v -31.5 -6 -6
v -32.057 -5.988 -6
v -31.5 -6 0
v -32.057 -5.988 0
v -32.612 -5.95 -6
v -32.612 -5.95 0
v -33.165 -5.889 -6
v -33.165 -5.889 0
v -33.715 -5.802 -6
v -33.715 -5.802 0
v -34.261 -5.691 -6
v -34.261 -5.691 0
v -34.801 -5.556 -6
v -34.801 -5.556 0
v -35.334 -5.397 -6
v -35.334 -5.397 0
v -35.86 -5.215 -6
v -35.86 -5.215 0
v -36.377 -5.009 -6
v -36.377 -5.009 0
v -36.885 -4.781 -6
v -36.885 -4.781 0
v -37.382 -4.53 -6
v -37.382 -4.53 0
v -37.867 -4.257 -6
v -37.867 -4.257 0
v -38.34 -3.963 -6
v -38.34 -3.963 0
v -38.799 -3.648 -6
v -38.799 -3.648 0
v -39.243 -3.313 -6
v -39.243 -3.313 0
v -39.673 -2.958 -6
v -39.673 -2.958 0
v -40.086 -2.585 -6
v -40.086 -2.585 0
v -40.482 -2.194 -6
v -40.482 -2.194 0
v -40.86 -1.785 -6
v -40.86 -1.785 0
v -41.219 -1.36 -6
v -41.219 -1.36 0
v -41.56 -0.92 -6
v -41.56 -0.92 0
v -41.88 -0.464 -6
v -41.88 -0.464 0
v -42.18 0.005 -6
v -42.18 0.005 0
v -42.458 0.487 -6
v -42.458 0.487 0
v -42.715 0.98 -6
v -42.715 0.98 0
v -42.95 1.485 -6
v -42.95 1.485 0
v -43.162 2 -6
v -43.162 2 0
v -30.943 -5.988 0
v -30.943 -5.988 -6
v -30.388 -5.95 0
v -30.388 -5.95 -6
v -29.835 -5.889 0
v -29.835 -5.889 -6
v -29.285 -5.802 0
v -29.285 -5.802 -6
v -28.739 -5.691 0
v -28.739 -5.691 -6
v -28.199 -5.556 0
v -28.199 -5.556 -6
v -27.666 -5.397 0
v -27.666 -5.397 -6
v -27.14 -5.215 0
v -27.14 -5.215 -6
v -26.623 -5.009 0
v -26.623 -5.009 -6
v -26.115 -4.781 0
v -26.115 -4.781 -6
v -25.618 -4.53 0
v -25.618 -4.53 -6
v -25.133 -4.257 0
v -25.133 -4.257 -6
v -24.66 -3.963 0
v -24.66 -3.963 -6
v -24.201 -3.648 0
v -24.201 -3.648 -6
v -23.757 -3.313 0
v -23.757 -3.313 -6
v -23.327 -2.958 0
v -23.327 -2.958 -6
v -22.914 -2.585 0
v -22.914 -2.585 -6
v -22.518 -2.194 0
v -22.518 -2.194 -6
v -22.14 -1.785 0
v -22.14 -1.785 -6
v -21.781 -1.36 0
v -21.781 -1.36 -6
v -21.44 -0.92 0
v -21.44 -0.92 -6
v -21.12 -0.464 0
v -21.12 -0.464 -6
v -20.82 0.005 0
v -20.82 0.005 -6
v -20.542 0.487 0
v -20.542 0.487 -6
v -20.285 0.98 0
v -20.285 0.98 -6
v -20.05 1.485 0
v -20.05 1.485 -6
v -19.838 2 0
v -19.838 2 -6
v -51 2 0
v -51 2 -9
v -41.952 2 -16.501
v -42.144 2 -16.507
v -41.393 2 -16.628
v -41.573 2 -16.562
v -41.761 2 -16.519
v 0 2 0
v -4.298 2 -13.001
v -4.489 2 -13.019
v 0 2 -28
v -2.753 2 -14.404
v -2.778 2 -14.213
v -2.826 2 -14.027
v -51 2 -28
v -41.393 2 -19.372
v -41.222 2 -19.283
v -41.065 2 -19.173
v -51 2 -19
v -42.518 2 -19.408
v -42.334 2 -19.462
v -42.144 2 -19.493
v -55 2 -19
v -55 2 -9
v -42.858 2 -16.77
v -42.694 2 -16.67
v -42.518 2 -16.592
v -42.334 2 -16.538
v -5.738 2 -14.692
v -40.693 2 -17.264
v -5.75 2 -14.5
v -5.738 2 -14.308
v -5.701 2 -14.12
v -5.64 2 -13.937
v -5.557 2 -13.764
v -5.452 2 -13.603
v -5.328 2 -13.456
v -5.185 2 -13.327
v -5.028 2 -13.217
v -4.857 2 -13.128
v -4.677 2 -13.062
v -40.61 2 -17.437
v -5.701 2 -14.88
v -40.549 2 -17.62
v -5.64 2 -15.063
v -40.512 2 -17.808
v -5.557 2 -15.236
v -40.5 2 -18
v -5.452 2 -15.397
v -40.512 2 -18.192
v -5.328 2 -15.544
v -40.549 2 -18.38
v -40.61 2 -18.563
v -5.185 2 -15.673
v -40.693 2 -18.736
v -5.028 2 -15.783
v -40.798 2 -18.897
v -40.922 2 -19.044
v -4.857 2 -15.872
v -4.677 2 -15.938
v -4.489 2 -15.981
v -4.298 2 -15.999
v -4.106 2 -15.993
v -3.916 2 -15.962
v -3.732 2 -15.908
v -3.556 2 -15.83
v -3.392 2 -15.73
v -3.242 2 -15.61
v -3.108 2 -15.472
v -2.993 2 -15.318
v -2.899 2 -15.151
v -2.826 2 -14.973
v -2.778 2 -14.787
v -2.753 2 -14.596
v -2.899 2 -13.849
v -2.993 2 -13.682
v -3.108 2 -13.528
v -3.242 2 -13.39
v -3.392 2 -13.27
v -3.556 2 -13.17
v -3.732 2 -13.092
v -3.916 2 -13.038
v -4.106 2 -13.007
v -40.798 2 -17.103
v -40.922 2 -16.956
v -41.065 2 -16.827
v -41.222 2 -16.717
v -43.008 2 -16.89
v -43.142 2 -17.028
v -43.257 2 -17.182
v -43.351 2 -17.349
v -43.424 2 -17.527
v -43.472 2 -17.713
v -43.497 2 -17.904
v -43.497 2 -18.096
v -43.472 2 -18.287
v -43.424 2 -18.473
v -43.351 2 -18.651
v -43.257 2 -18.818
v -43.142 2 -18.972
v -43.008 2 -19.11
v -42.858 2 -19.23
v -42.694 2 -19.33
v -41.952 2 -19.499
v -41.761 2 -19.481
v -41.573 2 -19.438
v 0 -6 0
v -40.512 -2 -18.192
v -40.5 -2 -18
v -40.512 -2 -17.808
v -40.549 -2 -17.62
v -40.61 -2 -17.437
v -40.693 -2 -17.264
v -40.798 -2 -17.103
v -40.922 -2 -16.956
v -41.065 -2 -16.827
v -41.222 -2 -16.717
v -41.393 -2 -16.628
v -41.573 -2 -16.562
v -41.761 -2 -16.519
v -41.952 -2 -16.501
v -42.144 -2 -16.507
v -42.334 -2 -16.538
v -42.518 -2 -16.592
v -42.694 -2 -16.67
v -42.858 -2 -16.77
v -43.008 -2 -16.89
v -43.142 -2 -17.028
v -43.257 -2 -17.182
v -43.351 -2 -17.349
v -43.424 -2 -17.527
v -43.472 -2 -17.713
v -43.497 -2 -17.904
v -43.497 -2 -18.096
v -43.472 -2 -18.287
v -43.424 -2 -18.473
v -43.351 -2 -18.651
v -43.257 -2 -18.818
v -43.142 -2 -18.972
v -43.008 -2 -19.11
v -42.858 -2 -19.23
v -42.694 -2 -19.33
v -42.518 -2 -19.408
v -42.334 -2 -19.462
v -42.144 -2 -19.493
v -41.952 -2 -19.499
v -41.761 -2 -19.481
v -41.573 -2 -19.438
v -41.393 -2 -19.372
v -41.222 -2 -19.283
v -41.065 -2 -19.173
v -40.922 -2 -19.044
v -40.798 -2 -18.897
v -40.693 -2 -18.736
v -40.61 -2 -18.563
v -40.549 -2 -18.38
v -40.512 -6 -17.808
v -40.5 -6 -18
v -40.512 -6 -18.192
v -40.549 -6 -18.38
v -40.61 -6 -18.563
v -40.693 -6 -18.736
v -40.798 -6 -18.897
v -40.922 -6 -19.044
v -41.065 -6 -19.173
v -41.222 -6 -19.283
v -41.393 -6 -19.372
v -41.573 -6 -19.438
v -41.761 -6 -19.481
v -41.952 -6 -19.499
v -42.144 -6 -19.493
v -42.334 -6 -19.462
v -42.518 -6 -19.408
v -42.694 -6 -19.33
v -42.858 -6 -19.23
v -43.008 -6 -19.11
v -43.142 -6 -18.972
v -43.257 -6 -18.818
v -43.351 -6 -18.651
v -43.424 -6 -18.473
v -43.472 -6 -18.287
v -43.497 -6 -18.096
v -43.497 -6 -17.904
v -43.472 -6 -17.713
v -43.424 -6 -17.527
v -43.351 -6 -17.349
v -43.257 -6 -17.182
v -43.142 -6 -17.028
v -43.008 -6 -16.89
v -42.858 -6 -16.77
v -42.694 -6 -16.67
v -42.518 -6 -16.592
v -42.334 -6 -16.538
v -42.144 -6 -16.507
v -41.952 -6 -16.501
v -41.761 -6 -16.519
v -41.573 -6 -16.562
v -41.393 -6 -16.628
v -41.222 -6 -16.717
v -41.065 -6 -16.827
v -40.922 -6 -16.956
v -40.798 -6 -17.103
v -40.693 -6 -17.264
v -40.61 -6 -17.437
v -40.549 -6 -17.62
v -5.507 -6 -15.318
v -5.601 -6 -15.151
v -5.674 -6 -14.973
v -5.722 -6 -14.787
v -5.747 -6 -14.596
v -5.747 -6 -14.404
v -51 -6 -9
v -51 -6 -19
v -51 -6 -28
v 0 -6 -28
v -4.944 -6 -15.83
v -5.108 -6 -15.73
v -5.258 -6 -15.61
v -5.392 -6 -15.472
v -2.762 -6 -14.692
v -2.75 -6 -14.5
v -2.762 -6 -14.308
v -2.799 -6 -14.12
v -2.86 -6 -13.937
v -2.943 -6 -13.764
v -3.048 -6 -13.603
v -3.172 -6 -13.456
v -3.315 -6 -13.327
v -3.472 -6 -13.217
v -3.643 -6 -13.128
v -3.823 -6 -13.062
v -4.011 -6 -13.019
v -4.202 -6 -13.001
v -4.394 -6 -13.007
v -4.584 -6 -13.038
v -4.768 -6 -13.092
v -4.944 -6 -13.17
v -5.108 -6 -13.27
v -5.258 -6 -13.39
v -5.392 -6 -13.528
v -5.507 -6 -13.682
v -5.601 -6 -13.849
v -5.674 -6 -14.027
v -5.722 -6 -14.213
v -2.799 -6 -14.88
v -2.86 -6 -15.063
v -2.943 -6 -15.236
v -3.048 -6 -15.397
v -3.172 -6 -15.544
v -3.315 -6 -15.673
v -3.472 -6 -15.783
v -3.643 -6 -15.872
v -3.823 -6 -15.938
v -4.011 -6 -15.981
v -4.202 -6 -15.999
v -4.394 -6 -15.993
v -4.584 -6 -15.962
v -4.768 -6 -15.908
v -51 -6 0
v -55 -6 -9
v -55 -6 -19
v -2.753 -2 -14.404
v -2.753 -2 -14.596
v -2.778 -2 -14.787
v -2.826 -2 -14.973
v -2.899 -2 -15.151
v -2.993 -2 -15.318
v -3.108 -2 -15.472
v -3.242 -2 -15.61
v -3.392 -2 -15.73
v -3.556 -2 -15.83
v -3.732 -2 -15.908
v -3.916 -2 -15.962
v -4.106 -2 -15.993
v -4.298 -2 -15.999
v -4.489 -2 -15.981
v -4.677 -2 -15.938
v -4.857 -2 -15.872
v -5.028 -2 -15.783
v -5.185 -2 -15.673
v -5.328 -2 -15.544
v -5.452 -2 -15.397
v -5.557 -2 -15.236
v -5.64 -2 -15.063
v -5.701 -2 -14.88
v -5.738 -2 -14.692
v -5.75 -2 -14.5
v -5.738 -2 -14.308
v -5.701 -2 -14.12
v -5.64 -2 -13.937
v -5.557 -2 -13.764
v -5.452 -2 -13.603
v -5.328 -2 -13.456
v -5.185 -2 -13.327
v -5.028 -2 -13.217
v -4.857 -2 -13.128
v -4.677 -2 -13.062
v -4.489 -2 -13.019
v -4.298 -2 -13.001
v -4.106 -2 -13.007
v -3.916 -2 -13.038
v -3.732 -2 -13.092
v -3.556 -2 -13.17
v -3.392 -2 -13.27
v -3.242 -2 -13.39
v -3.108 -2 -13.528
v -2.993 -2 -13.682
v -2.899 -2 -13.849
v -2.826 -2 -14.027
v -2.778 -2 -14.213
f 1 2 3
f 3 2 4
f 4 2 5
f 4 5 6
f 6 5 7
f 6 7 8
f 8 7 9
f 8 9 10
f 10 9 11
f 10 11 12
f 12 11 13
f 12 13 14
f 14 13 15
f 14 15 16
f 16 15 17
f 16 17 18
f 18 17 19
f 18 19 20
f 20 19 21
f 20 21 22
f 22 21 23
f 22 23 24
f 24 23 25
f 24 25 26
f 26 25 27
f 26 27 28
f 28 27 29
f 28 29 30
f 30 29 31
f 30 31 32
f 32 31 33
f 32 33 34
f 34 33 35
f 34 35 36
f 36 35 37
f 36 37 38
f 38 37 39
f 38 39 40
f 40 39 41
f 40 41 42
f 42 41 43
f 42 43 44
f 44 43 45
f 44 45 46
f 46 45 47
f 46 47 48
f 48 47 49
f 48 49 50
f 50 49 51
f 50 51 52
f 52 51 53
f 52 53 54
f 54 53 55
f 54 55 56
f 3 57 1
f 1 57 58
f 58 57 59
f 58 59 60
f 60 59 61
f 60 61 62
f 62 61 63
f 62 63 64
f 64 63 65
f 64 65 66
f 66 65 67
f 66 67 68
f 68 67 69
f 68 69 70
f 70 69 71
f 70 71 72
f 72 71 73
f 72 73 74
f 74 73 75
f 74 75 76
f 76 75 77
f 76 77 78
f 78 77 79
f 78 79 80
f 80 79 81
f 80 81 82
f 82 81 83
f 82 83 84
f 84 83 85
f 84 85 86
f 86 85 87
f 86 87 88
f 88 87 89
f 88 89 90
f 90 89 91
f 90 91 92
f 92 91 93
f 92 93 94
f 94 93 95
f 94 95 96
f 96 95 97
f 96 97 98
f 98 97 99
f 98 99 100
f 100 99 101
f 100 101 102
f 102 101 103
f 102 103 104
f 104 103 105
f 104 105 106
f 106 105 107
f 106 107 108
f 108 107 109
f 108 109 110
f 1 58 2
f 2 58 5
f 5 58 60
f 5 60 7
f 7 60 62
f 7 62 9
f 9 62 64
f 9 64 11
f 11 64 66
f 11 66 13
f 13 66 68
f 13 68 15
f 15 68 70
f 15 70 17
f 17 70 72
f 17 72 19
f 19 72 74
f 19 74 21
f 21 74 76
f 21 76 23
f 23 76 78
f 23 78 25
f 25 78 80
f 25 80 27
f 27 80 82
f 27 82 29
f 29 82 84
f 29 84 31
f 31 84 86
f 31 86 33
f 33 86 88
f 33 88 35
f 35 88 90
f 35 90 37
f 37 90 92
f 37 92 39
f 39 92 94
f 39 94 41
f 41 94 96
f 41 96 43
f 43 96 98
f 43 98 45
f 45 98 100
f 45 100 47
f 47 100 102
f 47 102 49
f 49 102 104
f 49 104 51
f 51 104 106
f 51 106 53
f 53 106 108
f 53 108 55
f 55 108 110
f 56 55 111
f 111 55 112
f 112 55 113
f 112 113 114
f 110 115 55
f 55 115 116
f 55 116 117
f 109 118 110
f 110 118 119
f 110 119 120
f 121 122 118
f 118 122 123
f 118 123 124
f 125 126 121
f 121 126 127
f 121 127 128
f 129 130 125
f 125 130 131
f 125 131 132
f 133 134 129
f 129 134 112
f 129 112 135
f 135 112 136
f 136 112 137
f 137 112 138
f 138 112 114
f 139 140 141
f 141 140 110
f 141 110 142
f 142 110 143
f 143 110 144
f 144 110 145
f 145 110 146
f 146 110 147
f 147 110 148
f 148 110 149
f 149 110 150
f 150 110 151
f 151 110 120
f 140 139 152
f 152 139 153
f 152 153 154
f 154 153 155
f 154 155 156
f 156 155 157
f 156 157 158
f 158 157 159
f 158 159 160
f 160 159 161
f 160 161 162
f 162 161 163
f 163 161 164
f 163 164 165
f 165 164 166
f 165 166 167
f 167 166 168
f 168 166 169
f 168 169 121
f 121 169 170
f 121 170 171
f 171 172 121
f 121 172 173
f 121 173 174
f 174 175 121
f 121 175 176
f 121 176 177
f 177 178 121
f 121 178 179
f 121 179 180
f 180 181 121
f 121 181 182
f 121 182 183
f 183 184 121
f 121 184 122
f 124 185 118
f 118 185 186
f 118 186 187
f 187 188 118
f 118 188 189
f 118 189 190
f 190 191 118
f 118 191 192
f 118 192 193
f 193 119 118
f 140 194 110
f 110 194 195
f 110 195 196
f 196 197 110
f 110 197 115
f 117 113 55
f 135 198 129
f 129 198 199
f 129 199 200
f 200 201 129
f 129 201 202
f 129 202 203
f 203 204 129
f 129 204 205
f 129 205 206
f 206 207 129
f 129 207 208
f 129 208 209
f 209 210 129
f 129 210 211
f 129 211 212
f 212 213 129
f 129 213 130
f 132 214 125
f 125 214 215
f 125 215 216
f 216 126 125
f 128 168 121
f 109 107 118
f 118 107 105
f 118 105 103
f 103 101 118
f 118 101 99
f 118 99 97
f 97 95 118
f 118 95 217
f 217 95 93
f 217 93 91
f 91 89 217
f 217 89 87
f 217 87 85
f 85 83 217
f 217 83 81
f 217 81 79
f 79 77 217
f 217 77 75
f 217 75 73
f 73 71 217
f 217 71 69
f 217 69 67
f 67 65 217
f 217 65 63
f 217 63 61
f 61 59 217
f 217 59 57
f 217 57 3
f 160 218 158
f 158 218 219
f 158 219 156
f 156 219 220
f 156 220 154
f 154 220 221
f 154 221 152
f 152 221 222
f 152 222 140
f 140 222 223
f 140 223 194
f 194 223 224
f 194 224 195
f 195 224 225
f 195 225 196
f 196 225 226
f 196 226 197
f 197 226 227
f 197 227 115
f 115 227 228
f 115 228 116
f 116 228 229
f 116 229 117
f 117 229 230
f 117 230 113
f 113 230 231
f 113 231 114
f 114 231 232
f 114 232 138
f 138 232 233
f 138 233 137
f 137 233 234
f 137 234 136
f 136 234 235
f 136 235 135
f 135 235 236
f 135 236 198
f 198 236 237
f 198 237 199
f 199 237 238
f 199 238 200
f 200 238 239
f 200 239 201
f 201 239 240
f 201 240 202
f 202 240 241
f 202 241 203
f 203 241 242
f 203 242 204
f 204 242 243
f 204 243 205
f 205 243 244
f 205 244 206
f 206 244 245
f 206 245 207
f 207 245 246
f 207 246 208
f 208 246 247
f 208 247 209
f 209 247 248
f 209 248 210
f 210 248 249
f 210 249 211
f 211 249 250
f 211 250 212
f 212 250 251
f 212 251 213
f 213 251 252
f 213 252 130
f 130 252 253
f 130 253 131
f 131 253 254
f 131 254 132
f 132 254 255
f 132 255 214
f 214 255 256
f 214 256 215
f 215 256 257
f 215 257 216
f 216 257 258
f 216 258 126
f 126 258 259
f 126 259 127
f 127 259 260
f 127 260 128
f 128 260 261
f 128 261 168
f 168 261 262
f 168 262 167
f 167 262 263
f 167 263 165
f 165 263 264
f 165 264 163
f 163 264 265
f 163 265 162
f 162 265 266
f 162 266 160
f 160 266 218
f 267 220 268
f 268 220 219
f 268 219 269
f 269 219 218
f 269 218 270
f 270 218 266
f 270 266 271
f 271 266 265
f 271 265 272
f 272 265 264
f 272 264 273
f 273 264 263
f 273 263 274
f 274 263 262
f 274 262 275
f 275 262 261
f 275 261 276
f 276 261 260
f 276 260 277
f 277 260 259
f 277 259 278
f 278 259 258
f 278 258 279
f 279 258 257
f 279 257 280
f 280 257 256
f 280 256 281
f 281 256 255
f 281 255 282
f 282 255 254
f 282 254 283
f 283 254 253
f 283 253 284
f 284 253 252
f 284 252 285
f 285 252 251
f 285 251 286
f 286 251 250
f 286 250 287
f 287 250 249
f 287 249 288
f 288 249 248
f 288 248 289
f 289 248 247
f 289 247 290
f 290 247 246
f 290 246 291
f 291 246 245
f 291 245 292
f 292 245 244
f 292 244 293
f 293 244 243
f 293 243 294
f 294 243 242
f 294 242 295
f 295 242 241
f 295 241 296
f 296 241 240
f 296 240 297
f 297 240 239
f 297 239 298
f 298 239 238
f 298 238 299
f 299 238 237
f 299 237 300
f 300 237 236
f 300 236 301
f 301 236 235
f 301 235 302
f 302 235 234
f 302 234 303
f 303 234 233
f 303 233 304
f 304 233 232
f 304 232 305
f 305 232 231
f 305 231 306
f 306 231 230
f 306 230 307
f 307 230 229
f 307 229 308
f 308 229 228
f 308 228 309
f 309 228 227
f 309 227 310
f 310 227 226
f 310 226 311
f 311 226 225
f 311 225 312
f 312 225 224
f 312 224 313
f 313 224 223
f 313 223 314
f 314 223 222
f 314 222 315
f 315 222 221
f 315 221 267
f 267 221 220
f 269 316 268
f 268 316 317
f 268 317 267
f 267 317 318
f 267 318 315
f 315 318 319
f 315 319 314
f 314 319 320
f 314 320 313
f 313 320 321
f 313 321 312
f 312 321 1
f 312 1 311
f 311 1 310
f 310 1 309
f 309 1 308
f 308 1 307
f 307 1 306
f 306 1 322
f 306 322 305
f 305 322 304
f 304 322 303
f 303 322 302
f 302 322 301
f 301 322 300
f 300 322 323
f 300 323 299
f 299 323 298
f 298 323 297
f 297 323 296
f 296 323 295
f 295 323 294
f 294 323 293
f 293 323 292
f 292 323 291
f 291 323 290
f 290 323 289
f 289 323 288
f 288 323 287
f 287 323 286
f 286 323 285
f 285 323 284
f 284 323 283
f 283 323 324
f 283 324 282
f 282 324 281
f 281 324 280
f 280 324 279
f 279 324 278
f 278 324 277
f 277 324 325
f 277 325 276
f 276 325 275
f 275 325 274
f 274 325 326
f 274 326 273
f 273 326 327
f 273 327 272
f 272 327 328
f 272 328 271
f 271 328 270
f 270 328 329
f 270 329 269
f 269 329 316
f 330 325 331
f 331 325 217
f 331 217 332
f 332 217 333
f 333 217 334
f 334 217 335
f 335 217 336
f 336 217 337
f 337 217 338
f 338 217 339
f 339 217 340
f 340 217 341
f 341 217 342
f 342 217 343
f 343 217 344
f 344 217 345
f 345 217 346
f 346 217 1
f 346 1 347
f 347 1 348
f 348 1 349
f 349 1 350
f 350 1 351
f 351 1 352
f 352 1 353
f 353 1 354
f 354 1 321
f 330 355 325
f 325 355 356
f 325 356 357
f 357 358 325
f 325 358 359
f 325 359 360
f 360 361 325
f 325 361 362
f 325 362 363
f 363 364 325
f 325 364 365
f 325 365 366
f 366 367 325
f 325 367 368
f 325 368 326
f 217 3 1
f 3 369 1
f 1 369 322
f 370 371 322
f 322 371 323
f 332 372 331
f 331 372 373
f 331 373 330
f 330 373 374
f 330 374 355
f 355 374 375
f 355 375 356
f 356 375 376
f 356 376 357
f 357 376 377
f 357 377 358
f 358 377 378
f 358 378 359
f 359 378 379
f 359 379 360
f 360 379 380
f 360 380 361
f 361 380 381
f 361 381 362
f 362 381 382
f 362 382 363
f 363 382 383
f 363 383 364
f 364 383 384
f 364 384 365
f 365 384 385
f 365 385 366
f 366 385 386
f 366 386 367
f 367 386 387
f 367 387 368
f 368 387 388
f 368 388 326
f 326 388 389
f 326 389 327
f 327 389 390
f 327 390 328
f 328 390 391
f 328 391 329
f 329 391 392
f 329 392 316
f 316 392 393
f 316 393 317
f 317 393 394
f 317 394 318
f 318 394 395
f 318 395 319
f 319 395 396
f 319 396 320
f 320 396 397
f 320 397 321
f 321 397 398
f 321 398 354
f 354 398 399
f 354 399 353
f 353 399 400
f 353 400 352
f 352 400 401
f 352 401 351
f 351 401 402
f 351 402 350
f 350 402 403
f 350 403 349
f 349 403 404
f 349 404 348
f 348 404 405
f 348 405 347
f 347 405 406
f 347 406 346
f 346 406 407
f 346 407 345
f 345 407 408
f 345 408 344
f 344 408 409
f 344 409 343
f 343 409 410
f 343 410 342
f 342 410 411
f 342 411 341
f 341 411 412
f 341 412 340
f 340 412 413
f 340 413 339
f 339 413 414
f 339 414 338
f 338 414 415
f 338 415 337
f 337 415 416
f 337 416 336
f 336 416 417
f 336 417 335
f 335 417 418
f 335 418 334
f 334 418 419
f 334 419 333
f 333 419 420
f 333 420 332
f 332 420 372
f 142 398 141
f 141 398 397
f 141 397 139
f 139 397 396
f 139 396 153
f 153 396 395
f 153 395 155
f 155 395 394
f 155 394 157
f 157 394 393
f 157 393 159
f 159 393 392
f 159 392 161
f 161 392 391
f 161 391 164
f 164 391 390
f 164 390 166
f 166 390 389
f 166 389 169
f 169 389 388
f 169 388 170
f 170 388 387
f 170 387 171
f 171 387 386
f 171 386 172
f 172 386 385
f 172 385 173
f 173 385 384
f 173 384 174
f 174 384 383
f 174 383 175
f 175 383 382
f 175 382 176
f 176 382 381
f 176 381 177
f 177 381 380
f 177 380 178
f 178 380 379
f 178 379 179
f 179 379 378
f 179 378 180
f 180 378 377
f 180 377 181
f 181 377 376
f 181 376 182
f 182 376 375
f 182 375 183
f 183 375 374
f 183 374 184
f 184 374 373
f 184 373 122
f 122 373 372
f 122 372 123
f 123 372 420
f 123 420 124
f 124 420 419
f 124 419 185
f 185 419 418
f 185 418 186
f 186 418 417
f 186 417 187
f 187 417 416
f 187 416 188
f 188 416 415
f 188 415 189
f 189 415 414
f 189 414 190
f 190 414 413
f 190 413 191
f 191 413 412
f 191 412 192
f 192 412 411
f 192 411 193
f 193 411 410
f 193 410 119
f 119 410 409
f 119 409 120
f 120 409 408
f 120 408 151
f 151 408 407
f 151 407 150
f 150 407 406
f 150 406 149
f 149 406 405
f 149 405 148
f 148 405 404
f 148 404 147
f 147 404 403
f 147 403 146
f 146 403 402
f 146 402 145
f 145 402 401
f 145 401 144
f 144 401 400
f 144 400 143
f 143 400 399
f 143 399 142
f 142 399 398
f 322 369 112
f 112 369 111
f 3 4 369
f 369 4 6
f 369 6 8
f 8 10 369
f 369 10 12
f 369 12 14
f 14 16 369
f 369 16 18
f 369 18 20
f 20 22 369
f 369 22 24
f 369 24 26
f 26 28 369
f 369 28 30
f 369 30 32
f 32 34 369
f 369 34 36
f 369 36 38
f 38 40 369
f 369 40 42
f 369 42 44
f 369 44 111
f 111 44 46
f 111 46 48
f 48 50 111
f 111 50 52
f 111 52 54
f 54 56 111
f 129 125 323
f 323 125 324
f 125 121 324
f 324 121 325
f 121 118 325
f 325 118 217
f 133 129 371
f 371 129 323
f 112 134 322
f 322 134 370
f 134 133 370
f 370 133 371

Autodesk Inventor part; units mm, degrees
ref_plane "YZ Plane" through (0, 0, 0) normal (1, 0, 0) x (0, 1, 0)
ref_plane "XZ Plane" through (0, 0, 0) normal (0, 1, 0) x (-1, 0, 0)
ref_plane "XY Plane" through (0, 0, 0) normal (0, 0, 1) x (1, 0, 0)
sketch "Boceto1" plane through (0, 0, 0) normal (0, 1, 0) x (-1, 0, 0)
  line L0 (0, 0) -> (51, 0)
  line L1 (51, 0) -> (51, -28)
  line L2 (51, -28) -> (0, -28)
  line L3 (0, -28) -> (0, 0)
  line L4 (51, 0) -> (51, -18.5)
  line L5 (51, -18.5) -> (42, -18.5)
  circle A0 centre (42, -18.5) radius 1.5
  line L6 (0, 0) -> (0, -14.5)
  line L7 (0, -14.5) -> (4.25, -14.5)
  circle A1 centre (4.25, -14.5) radius 1.5
  line L8 (51, 0) -> (51, -14)
  line L9 (51, -14) -> (55, -14)
  line L10 (55, -14) -> (55, -9)
  line L11 (55, -9) -> (51, -9)
  line L12 (55, -14) -> (55, -19)
  line L13 (55, -19) -> (51, -19)
  dimension "d0" = 51
  dimension "d1" = 28
  dimension "d2" = 18.5
  dimension "d3" = 9
  dimension "d4" = 3
  dimension "d5" = 14.5
  dimension "d6" = 4.25
  dimension "d7" = 3
  dimension "d8" = 14
  dimension "d9" = 4
  dimension "d10" = 5
  dimension "d11" = 5
extrude "Extrusión1" add sketch "Boceto1" along normal blind 2
sketch "Boceto2" plane through (0, 0, 0) normal (0, -1, 0) x (1, 0, 0)
  circle A0 centre (-42, -18.5) radius 1.5 projected
  circle A1 centre (-42, -18.5) radius 1.5
  point P0 (0, 0)
extrude "Extrusión2" add sketch "Boceto2" against normal blind 2
sketch "Boceto3" plane through (0, 0, 0) normal (0, -1, 0) x (1, 0, 0)
  circle A0 centre (-4.25, -14.5) radius 1.5 projected
  circle A1 centre (-4.25, -14.5) radius 1.5
  line L0 (-51, 0) -> (0, 0) projected
  line L1 (0, 0) -> (-51, 0)
  line L2 (-51, -9) -> (-51, 0) projected
  line L3 (-51, 0) -> (-51, -9)
  line L4 (-55, -9) -> (-51, -9) projected
  line L5 (-51, -9) -> (-55, -9)
  line L6 (-51, -19) -> (-55, -19) projected
  line L7 (-55, -9) -> (-55, -19)
  line L8 (-55, -19) -> (-51, -19)
  line L9 (-51, -28) -> (-51, -19) projected
  line L10 (-51, -19) -> (-51, -28)
  line L11 (0, -28) -> (-51, -28) projected
  line L12 (-51, -28) -> (0, -28)
  line L13 (0, 0) -> (0, -28) projected
  line L14 (0, -28) -> (0, 0)
extrude "Extrusión3" add sketch "Boceto3" along normal blind 6
sketch "Boceto4" plane through (0, -6, 0) normal (0, -1, 0) x (1, 0, 0)
  line L0 (-51, 0) -> (-51, -9) projected
  line L1 (-51, -9) -> (-51, -18)
  line L2 (-51, -18) -> (-42, -18)
  circle A0 centre (-42, -18) radius 1.5
  point P0 (0, 0)
  dimension "d18" = 9
  dimension "d19" = 9
  dimension "d20" = 3
extrude "Extrusión4" cut sketch "Boceto4" against normal blind 8
sketch "Boceto5" plane through (-51, 2, 0) normal (0, 0, 1) x (1, 0, 0)
  line L0 (51, -8) -> (51, 17)
  line L1 (-4, 4.5) -> (19.5, 4.5)
  circle A0 centre (19.5, 4.5) radius 12.5
  line L2 (0, -8) -> (51, -8) projected
  line L3 (51, 0) -> (0, 0) projected
  line L4 (7.8381, 0) -> (31.1619, 0)
  point P0 (51, -2)
  dimension "d23" = 25
  dimension "d24" = 23.5
extrude "Extrusión5" cut sketch "Boceto5" against normal blind 6 contours A0 L3 picked at (19.5, -2.6667)
properties part number "arm_2_microservo_case"
